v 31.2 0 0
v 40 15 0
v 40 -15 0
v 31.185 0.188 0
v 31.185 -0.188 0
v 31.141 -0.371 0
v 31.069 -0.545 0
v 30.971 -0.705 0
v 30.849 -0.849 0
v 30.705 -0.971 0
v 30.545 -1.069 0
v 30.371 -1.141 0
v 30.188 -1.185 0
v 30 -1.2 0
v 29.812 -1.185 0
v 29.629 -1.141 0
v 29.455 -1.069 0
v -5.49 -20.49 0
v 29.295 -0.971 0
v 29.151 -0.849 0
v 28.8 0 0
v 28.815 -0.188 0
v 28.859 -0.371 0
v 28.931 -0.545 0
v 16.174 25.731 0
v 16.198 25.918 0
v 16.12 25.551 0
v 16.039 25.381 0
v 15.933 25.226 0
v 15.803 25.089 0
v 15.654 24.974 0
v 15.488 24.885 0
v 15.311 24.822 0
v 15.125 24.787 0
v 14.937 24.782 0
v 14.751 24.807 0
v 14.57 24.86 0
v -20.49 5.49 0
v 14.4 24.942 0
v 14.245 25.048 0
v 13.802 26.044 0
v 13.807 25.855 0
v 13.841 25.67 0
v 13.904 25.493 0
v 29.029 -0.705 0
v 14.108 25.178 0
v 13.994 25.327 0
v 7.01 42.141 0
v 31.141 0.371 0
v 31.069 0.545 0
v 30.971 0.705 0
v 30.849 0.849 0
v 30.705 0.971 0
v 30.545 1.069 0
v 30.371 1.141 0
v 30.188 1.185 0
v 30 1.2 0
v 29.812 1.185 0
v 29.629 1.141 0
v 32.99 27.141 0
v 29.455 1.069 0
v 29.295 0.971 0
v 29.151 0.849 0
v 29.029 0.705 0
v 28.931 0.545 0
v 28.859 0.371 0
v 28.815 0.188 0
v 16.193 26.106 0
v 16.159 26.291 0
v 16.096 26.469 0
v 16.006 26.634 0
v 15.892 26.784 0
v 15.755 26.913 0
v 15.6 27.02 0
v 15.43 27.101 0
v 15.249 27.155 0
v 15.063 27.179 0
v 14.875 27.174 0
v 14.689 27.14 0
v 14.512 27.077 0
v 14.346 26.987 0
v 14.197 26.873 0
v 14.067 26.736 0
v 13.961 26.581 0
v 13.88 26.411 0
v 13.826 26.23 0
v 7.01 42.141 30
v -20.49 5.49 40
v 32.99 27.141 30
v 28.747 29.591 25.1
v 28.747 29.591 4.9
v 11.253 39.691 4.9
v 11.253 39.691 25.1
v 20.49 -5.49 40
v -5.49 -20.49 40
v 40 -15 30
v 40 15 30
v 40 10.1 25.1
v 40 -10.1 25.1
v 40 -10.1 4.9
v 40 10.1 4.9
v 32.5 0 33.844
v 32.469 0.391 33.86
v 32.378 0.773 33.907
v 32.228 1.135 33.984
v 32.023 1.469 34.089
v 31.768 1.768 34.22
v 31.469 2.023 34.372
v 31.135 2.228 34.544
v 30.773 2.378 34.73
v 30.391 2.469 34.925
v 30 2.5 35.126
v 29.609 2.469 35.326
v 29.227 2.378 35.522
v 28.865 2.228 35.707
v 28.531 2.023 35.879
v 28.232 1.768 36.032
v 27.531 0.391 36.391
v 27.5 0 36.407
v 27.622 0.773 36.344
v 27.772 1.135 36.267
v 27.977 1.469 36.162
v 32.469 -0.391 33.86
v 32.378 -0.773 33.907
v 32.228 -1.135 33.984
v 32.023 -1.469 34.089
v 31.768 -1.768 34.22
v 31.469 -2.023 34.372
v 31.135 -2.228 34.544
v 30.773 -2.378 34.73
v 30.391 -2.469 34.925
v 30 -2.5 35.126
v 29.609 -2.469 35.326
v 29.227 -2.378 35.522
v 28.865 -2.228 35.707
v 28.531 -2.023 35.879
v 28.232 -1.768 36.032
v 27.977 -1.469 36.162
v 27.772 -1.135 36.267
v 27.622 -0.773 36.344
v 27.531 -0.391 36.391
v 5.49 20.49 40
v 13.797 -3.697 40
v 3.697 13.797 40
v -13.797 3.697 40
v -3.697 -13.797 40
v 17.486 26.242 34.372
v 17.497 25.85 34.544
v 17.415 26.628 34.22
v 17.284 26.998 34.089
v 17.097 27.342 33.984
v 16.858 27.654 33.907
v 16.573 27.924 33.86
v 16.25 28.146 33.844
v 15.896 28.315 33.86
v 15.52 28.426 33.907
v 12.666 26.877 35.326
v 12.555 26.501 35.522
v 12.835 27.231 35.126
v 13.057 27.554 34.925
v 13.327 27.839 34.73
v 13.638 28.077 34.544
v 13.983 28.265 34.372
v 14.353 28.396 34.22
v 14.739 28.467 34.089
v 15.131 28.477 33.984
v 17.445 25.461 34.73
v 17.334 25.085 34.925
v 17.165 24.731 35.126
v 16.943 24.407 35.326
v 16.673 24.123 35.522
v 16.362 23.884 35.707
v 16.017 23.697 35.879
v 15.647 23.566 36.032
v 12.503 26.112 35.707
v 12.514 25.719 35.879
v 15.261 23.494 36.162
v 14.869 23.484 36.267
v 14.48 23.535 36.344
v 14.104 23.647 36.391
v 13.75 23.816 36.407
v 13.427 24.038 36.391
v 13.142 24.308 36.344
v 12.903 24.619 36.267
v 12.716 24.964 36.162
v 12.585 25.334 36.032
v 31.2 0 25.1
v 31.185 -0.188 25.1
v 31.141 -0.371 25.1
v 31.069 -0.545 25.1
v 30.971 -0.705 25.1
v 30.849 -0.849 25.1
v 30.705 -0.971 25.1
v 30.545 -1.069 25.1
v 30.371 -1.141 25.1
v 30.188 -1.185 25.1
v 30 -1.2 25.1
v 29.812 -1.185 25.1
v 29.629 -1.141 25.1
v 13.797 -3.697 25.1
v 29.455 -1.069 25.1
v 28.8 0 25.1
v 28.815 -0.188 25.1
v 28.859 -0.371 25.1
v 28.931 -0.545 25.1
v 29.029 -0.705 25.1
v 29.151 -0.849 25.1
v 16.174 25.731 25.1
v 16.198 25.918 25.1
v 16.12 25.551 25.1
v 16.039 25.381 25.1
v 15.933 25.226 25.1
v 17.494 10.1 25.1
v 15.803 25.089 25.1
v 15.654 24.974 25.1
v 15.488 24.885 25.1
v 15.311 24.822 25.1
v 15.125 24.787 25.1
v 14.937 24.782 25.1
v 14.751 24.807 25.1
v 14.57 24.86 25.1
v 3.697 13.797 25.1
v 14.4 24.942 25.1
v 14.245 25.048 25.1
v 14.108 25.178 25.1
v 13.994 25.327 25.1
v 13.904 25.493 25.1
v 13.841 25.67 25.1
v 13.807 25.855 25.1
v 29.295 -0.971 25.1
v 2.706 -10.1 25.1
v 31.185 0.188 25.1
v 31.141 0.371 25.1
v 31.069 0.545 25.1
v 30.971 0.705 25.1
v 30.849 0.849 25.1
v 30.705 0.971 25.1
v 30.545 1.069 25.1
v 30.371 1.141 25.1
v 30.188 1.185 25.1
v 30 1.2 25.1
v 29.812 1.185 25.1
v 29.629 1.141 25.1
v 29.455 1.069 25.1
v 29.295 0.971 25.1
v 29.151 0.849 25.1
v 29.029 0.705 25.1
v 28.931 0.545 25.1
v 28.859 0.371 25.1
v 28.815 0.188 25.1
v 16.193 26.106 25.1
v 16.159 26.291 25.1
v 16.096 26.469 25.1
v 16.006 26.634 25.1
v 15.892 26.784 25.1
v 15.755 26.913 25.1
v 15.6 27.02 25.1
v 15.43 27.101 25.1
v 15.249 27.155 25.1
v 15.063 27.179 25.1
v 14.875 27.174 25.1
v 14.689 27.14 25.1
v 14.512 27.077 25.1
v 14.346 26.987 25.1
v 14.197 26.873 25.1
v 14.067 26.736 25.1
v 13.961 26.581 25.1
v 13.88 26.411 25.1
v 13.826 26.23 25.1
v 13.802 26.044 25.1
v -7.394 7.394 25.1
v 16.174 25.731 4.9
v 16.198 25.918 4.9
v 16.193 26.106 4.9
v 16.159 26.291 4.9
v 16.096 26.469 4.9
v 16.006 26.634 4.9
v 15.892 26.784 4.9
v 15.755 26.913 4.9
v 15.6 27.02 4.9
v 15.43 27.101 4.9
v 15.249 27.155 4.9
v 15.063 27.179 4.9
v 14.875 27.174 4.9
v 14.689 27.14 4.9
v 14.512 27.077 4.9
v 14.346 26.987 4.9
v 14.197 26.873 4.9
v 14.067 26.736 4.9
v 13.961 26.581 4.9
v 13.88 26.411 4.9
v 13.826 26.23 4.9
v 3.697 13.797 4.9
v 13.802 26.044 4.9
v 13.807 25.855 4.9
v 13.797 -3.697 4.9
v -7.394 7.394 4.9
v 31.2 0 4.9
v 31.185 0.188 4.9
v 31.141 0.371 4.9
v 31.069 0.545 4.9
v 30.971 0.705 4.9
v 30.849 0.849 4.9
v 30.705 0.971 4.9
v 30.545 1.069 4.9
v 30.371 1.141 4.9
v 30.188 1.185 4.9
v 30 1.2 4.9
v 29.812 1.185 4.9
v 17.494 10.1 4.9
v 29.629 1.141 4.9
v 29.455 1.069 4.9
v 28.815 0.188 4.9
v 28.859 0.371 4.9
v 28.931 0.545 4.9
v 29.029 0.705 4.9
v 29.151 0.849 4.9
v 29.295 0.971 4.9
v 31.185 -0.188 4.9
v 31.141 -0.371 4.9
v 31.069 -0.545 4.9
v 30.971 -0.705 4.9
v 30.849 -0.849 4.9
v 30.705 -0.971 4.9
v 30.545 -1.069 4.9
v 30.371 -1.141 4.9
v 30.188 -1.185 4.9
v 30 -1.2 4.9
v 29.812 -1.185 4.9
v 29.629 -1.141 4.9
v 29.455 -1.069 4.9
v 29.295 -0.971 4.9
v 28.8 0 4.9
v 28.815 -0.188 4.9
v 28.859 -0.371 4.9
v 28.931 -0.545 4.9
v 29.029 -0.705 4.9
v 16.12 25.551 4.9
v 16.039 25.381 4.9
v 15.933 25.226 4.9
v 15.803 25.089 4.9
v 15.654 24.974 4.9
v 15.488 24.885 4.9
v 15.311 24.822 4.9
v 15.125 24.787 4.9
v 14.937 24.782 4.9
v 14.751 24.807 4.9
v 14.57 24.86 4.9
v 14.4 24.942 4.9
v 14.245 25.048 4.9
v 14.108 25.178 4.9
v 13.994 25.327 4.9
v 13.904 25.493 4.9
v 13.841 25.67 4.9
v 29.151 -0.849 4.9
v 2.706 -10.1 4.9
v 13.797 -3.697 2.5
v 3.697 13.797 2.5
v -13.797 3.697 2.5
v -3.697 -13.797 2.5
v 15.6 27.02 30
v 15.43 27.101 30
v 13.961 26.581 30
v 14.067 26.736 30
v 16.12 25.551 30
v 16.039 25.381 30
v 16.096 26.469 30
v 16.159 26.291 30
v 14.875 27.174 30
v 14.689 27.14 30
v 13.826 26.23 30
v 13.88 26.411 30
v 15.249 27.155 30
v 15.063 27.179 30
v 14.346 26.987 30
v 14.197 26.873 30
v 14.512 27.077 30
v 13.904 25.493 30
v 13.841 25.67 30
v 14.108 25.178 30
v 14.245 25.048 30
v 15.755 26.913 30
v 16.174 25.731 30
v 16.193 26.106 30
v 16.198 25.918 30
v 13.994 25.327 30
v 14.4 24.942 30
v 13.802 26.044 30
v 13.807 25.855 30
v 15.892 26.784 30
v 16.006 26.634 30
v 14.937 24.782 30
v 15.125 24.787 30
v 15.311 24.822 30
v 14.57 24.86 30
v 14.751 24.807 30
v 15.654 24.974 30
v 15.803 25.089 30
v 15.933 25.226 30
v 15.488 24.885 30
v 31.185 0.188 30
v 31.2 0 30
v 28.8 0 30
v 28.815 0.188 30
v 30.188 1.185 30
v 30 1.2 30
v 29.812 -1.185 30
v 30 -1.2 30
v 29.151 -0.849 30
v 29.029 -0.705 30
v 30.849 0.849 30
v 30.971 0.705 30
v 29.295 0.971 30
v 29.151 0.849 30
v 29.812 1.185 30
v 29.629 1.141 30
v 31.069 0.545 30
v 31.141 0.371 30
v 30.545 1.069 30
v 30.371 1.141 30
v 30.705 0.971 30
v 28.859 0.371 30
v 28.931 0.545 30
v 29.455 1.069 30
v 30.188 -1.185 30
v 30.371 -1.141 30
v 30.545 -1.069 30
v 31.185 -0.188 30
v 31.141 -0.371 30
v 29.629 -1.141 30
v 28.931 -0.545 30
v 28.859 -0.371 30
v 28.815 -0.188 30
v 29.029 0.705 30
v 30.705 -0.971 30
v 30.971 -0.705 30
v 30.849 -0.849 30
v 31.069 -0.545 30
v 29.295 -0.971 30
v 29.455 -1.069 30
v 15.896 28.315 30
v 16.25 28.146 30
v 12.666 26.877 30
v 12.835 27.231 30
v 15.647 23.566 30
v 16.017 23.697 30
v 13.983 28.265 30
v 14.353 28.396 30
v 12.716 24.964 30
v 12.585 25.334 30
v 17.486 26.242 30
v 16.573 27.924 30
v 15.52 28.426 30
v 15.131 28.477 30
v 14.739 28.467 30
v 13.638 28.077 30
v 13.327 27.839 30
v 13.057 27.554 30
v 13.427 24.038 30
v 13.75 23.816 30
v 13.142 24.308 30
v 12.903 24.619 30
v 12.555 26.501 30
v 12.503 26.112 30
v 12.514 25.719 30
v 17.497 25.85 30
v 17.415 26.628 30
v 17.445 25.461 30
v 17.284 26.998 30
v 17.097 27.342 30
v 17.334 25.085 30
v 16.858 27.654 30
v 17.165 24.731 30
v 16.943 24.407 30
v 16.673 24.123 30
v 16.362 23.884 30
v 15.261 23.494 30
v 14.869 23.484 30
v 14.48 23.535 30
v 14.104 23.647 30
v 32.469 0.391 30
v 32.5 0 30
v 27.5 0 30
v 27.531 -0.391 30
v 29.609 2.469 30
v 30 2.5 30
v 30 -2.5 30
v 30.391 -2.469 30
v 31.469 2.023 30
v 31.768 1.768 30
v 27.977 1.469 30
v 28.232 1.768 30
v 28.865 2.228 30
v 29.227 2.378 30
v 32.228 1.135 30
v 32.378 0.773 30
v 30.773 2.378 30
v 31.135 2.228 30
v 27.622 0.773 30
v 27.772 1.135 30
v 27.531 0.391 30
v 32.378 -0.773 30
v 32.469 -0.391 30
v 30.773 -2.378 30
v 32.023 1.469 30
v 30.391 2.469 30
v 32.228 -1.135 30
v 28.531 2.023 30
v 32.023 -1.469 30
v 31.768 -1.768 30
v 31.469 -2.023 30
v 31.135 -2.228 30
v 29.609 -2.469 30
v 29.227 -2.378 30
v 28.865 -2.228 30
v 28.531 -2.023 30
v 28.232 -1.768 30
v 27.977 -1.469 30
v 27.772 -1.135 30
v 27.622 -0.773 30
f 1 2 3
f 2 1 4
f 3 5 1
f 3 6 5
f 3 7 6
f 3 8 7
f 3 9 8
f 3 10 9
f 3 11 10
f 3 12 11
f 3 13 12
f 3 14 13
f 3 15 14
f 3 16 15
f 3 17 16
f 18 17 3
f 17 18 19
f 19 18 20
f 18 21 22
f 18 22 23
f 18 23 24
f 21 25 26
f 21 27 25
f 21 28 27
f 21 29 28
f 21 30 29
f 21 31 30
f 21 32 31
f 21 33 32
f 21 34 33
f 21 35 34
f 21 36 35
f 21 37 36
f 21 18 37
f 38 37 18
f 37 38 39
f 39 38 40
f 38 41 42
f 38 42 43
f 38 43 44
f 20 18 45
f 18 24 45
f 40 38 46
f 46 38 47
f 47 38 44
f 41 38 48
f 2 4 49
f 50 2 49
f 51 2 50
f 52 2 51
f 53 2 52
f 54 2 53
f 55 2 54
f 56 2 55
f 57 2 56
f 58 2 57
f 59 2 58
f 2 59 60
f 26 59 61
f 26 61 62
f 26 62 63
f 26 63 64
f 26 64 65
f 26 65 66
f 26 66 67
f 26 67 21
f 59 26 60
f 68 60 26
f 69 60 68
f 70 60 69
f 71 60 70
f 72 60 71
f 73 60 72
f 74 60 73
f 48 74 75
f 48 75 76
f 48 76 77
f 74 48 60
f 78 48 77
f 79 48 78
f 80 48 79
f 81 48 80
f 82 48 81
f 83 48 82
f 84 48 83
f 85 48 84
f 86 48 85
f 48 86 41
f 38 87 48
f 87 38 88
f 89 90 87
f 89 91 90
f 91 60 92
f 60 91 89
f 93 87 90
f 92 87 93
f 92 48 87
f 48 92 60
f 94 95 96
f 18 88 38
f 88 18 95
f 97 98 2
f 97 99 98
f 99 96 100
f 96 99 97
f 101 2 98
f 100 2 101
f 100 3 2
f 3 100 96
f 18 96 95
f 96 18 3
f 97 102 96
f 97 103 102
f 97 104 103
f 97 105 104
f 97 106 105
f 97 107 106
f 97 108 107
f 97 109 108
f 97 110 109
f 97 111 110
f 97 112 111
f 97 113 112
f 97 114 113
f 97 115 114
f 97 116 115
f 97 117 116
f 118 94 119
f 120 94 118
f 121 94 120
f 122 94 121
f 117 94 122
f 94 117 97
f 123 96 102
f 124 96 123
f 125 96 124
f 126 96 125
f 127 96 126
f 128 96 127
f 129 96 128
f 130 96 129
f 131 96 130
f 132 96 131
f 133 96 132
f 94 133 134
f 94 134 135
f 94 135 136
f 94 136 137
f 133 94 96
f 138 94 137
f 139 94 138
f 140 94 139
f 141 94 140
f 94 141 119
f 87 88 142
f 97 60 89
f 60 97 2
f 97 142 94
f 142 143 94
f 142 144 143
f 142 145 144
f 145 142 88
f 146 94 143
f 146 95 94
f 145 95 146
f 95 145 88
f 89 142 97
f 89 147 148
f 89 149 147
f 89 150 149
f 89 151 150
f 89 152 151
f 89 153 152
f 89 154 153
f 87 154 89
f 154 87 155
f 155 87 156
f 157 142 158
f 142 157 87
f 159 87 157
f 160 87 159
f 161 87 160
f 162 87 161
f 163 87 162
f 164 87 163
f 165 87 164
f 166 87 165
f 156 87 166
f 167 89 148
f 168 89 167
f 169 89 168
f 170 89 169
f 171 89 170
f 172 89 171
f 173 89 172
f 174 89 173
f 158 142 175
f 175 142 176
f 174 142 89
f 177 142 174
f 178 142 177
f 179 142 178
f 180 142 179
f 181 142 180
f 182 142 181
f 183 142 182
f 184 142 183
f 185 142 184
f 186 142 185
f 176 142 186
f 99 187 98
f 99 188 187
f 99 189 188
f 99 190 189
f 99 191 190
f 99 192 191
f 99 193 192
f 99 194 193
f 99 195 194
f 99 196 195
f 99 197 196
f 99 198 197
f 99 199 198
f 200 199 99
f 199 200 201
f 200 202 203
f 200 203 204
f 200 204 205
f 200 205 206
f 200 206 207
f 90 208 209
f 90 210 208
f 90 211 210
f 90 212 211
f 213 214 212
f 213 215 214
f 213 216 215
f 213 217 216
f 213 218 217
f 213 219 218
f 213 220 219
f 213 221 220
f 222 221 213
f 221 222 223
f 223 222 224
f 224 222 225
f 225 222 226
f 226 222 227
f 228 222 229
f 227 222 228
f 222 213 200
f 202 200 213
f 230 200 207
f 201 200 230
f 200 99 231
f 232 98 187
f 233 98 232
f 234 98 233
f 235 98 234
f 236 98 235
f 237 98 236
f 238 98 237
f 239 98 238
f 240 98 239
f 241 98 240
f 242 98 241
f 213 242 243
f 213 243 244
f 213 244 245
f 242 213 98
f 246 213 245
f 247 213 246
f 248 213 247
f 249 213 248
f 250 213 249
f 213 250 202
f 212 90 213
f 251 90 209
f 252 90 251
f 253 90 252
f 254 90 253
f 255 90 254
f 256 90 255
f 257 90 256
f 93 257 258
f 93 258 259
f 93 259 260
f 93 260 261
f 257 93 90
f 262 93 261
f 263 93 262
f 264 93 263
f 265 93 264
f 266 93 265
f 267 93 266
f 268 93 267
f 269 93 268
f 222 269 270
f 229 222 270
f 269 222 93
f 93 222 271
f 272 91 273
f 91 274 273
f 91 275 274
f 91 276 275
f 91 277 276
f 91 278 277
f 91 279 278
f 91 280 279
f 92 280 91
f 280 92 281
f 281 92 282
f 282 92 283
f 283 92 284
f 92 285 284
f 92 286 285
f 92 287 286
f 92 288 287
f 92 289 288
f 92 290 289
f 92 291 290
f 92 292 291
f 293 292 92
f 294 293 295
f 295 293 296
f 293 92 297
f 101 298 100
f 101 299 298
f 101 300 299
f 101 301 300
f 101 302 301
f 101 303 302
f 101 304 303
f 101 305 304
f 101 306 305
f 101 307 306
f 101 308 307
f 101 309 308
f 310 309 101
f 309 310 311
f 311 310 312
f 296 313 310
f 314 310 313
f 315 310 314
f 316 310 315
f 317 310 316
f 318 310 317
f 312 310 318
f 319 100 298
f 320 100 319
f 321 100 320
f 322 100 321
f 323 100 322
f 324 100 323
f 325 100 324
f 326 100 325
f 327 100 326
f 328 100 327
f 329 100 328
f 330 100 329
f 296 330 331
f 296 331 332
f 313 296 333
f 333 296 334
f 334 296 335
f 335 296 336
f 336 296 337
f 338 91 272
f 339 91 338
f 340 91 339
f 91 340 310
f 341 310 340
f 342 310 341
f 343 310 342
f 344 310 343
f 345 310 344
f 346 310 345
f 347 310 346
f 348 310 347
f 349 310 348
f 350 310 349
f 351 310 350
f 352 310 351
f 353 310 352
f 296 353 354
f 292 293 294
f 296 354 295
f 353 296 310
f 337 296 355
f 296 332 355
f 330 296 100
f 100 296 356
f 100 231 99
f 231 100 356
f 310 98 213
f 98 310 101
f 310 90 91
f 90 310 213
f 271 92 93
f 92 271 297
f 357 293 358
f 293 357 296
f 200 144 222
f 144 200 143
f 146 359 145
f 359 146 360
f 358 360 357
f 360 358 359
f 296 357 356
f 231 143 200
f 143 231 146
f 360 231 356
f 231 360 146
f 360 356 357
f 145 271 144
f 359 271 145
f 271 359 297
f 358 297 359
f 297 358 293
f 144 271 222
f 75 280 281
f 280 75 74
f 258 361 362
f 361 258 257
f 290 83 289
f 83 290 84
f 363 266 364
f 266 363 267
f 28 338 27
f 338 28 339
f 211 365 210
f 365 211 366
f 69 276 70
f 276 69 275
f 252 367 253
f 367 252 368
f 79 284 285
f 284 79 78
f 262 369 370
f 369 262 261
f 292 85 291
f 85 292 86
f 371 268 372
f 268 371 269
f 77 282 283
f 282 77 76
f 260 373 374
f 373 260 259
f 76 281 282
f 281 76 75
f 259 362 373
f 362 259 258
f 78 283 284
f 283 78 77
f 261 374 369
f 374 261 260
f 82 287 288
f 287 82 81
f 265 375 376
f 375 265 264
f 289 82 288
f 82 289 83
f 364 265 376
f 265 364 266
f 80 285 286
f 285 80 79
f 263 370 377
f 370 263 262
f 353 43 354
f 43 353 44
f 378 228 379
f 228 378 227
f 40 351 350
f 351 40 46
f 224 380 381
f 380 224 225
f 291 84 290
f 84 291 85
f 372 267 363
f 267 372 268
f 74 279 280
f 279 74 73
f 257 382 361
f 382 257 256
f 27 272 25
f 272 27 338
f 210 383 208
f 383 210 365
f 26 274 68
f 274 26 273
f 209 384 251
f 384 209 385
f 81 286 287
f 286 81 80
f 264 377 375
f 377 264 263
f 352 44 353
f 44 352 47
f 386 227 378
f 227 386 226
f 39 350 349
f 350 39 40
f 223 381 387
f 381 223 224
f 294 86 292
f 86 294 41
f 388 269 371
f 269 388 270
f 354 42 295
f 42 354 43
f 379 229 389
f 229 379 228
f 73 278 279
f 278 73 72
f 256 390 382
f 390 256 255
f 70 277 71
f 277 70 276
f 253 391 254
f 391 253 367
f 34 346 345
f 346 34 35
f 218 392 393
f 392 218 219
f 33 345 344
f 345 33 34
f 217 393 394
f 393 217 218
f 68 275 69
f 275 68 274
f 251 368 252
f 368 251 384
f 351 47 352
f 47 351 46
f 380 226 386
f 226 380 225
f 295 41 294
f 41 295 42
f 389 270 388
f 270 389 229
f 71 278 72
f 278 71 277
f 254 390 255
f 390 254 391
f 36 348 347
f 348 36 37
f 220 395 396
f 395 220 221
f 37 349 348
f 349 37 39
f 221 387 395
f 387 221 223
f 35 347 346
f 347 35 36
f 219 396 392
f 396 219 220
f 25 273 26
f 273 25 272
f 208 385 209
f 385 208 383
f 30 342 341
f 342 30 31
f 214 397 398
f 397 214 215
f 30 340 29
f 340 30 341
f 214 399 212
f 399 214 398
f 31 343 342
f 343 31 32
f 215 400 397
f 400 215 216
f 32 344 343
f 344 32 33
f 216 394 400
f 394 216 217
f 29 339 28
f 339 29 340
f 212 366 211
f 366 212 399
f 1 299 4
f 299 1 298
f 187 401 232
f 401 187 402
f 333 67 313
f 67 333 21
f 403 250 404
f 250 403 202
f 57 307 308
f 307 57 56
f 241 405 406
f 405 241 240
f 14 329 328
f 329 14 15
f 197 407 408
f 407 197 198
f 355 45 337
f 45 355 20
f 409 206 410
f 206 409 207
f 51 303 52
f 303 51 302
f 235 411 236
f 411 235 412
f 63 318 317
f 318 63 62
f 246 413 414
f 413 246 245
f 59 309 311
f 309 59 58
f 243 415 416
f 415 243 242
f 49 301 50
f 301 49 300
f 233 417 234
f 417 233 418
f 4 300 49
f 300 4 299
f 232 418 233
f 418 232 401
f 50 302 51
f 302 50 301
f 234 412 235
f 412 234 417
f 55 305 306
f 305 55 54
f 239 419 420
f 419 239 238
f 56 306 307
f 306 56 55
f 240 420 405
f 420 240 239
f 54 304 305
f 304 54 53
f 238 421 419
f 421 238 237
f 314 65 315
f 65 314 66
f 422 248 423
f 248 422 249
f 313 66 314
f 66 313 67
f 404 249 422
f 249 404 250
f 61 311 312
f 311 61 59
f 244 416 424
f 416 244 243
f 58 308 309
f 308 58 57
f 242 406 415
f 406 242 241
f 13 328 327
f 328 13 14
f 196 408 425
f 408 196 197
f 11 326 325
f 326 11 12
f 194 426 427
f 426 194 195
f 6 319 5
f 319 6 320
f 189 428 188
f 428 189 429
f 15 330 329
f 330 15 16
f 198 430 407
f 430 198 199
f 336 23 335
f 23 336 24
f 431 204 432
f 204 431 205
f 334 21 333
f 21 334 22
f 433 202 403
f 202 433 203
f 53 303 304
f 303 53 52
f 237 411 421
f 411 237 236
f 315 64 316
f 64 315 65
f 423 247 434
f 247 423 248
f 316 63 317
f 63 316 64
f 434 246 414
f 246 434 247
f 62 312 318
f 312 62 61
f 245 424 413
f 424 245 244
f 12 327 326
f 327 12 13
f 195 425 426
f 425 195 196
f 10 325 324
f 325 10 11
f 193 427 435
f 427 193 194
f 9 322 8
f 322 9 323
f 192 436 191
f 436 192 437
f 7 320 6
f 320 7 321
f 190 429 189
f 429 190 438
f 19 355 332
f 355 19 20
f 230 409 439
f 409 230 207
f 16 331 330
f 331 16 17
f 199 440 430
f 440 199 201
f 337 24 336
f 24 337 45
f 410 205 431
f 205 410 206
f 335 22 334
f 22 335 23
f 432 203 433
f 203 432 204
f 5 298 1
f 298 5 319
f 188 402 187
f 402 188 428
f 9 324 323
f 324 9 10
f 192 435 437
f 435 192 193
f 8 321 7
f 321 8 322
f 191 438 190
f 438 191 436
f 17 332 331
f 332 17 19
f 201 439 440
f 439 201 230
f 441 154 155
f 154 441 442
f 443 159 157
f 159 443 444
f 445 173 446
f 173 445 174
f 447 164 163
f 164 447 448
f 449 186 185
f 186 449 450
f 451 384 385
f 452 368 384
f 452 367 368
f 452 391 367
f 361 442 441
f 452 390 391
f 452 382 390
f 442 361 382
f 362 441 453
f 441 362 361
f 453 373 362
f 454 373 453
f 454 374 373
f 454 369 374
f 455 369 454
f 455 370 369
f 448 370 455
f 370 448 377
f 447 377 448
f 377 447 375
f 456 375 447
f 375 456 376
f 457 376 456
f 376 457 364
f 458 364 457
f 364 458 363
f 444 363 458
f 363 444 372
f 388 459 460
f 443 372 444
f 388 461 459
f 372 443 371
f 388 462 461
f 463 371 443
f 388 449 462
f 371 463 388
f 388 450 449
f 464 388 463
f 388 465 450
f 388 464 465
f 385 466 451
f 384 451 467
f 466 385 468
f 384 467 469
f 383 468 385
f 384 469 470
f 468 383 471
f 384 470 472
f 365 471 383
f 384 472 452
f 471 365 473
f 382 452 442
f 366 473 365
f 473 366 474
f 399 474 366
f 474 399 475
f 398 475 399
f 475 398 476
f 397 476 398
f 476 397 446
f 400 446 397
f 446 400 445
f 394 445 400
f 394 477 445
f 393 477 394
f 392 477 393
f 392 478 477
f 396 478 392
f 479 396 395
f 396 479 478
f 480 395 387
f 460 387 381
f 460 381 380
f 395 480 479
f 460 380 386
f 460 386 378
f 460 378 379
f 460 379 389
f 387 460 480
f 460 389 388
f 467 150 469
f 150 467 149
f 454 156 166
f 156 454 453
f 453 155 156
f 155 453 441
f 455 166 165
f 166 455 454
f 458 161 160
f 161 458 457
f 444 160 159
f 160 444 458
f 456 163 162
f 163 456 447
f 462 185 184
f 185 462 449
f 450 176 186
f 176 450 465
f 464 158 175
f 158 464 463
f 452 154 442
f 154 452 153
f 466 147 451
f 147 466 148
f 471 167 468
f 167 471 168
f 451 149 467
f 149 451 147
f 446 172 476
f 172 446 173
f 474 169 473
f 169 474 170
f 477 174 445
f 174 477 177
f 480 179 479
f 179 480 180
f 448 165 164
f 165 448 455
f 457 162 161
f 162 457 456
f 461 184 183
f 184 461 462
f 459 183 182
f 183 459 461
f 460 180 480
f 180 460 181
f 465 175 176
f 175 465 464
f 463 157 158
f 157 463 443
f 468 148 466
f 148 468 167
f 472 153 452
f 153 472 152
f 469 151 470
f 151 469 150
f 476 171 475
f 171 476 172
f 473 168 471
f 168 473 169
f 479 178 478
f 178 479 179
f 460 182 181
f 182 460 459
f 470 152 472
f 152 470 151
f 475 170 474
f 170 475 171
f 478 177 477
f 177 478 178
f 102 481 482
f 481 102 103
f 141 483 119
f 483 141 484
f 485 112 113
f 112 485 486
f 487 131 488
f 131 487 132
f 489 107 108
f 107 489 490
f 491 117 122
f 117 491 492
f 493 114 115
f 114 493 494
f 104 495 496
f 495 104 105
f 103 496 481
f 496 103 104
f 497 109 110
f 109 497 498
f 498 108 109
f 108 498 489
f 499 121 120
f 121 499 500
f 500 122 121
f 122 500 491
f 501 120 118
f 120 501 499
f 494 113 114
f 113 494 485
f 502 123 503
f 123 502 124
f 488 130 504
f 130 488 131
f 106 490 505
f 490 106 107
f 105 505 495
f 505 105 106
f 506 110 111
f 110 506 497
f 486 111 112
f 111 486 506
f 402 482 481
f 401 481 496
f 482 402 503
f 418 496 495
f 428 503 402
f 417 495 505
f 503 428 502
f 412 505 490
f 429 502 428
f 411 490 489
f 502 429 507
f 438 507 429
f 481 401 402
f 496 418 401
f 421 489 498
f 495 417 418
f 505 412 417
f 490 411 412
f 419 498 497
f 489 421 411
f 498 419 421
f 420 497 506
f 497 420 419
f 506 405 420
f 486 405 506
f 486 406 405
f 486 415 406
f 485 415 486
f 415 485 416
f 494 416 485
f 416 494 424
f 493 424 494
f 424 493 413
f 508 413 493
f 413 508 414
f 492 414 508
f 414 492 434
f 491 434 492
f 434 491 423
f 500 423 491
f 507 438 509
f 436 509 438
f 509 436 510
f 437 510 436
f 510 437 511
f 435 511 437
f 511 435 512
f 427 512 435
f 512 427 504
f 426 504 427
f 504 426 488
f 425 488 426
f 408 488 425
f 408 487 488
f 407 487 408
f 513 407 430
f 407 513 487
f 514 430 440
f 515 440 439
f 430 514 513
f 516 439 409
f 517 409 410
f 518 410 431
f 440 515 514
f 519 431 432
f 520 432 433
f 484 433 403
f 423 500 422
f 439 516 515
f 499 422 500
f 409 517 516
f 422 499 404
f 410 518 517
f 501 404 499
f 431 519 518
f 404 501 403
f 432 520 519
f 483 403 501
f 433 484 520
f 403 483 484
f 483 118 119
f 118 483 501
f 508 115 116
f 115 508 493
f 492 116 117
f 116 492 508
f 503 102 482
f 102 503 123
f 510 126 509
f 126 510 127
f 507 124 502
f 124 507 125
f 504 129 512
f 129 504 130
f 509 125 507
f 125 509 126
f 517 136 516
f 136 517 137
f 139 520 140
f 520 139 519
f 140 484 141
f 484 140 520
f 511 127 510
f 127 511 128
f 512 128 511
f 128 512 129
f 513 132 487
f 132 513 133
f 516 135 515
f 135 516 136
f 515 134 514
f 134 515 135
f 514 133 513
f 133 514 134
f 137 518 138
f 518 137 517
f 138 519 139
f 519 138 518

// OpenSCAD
difference(){
hull(){
translate([0,0,0])translate([0,-30/2,0])cube([40,30,30]);      
rotate([0,0,60])translate([0,-30/2,0])cube([40,30,30]); 
rotate([0,0,30])translate([-30/2,-30/2,0])cube([30,30,40]); 
}

translate([0,0,(30-20.2)/2])translate([0,-20.2/2,0])cube([50,20.2,20.2]);  
translate([0,0,(30-20.2)/2])rotate([0,0,60])translate([0,-20.2/2,0])cube([50,20.2,20.2]);  
rotate([0,0,30])translate([-20.2/2,-20.2/2,2.5])cube([20.2,20.2,50]); 

rotate([0,0,60])translate([30,0,-1])cylinder(r=1.2,h=50, $fn=40); 
rotate([0,0,0])translate([30,0,-1])cylinder(r=1.2,h=50, $fn=40); 

rotate([0,0,60])translate([30,0,30])cylinder(r=2.5,h=50, $fn=40); 
rotate([0,0,0])translate([30,0,30])cylinder(r=2.5,h=50, $fn=40); 

}
